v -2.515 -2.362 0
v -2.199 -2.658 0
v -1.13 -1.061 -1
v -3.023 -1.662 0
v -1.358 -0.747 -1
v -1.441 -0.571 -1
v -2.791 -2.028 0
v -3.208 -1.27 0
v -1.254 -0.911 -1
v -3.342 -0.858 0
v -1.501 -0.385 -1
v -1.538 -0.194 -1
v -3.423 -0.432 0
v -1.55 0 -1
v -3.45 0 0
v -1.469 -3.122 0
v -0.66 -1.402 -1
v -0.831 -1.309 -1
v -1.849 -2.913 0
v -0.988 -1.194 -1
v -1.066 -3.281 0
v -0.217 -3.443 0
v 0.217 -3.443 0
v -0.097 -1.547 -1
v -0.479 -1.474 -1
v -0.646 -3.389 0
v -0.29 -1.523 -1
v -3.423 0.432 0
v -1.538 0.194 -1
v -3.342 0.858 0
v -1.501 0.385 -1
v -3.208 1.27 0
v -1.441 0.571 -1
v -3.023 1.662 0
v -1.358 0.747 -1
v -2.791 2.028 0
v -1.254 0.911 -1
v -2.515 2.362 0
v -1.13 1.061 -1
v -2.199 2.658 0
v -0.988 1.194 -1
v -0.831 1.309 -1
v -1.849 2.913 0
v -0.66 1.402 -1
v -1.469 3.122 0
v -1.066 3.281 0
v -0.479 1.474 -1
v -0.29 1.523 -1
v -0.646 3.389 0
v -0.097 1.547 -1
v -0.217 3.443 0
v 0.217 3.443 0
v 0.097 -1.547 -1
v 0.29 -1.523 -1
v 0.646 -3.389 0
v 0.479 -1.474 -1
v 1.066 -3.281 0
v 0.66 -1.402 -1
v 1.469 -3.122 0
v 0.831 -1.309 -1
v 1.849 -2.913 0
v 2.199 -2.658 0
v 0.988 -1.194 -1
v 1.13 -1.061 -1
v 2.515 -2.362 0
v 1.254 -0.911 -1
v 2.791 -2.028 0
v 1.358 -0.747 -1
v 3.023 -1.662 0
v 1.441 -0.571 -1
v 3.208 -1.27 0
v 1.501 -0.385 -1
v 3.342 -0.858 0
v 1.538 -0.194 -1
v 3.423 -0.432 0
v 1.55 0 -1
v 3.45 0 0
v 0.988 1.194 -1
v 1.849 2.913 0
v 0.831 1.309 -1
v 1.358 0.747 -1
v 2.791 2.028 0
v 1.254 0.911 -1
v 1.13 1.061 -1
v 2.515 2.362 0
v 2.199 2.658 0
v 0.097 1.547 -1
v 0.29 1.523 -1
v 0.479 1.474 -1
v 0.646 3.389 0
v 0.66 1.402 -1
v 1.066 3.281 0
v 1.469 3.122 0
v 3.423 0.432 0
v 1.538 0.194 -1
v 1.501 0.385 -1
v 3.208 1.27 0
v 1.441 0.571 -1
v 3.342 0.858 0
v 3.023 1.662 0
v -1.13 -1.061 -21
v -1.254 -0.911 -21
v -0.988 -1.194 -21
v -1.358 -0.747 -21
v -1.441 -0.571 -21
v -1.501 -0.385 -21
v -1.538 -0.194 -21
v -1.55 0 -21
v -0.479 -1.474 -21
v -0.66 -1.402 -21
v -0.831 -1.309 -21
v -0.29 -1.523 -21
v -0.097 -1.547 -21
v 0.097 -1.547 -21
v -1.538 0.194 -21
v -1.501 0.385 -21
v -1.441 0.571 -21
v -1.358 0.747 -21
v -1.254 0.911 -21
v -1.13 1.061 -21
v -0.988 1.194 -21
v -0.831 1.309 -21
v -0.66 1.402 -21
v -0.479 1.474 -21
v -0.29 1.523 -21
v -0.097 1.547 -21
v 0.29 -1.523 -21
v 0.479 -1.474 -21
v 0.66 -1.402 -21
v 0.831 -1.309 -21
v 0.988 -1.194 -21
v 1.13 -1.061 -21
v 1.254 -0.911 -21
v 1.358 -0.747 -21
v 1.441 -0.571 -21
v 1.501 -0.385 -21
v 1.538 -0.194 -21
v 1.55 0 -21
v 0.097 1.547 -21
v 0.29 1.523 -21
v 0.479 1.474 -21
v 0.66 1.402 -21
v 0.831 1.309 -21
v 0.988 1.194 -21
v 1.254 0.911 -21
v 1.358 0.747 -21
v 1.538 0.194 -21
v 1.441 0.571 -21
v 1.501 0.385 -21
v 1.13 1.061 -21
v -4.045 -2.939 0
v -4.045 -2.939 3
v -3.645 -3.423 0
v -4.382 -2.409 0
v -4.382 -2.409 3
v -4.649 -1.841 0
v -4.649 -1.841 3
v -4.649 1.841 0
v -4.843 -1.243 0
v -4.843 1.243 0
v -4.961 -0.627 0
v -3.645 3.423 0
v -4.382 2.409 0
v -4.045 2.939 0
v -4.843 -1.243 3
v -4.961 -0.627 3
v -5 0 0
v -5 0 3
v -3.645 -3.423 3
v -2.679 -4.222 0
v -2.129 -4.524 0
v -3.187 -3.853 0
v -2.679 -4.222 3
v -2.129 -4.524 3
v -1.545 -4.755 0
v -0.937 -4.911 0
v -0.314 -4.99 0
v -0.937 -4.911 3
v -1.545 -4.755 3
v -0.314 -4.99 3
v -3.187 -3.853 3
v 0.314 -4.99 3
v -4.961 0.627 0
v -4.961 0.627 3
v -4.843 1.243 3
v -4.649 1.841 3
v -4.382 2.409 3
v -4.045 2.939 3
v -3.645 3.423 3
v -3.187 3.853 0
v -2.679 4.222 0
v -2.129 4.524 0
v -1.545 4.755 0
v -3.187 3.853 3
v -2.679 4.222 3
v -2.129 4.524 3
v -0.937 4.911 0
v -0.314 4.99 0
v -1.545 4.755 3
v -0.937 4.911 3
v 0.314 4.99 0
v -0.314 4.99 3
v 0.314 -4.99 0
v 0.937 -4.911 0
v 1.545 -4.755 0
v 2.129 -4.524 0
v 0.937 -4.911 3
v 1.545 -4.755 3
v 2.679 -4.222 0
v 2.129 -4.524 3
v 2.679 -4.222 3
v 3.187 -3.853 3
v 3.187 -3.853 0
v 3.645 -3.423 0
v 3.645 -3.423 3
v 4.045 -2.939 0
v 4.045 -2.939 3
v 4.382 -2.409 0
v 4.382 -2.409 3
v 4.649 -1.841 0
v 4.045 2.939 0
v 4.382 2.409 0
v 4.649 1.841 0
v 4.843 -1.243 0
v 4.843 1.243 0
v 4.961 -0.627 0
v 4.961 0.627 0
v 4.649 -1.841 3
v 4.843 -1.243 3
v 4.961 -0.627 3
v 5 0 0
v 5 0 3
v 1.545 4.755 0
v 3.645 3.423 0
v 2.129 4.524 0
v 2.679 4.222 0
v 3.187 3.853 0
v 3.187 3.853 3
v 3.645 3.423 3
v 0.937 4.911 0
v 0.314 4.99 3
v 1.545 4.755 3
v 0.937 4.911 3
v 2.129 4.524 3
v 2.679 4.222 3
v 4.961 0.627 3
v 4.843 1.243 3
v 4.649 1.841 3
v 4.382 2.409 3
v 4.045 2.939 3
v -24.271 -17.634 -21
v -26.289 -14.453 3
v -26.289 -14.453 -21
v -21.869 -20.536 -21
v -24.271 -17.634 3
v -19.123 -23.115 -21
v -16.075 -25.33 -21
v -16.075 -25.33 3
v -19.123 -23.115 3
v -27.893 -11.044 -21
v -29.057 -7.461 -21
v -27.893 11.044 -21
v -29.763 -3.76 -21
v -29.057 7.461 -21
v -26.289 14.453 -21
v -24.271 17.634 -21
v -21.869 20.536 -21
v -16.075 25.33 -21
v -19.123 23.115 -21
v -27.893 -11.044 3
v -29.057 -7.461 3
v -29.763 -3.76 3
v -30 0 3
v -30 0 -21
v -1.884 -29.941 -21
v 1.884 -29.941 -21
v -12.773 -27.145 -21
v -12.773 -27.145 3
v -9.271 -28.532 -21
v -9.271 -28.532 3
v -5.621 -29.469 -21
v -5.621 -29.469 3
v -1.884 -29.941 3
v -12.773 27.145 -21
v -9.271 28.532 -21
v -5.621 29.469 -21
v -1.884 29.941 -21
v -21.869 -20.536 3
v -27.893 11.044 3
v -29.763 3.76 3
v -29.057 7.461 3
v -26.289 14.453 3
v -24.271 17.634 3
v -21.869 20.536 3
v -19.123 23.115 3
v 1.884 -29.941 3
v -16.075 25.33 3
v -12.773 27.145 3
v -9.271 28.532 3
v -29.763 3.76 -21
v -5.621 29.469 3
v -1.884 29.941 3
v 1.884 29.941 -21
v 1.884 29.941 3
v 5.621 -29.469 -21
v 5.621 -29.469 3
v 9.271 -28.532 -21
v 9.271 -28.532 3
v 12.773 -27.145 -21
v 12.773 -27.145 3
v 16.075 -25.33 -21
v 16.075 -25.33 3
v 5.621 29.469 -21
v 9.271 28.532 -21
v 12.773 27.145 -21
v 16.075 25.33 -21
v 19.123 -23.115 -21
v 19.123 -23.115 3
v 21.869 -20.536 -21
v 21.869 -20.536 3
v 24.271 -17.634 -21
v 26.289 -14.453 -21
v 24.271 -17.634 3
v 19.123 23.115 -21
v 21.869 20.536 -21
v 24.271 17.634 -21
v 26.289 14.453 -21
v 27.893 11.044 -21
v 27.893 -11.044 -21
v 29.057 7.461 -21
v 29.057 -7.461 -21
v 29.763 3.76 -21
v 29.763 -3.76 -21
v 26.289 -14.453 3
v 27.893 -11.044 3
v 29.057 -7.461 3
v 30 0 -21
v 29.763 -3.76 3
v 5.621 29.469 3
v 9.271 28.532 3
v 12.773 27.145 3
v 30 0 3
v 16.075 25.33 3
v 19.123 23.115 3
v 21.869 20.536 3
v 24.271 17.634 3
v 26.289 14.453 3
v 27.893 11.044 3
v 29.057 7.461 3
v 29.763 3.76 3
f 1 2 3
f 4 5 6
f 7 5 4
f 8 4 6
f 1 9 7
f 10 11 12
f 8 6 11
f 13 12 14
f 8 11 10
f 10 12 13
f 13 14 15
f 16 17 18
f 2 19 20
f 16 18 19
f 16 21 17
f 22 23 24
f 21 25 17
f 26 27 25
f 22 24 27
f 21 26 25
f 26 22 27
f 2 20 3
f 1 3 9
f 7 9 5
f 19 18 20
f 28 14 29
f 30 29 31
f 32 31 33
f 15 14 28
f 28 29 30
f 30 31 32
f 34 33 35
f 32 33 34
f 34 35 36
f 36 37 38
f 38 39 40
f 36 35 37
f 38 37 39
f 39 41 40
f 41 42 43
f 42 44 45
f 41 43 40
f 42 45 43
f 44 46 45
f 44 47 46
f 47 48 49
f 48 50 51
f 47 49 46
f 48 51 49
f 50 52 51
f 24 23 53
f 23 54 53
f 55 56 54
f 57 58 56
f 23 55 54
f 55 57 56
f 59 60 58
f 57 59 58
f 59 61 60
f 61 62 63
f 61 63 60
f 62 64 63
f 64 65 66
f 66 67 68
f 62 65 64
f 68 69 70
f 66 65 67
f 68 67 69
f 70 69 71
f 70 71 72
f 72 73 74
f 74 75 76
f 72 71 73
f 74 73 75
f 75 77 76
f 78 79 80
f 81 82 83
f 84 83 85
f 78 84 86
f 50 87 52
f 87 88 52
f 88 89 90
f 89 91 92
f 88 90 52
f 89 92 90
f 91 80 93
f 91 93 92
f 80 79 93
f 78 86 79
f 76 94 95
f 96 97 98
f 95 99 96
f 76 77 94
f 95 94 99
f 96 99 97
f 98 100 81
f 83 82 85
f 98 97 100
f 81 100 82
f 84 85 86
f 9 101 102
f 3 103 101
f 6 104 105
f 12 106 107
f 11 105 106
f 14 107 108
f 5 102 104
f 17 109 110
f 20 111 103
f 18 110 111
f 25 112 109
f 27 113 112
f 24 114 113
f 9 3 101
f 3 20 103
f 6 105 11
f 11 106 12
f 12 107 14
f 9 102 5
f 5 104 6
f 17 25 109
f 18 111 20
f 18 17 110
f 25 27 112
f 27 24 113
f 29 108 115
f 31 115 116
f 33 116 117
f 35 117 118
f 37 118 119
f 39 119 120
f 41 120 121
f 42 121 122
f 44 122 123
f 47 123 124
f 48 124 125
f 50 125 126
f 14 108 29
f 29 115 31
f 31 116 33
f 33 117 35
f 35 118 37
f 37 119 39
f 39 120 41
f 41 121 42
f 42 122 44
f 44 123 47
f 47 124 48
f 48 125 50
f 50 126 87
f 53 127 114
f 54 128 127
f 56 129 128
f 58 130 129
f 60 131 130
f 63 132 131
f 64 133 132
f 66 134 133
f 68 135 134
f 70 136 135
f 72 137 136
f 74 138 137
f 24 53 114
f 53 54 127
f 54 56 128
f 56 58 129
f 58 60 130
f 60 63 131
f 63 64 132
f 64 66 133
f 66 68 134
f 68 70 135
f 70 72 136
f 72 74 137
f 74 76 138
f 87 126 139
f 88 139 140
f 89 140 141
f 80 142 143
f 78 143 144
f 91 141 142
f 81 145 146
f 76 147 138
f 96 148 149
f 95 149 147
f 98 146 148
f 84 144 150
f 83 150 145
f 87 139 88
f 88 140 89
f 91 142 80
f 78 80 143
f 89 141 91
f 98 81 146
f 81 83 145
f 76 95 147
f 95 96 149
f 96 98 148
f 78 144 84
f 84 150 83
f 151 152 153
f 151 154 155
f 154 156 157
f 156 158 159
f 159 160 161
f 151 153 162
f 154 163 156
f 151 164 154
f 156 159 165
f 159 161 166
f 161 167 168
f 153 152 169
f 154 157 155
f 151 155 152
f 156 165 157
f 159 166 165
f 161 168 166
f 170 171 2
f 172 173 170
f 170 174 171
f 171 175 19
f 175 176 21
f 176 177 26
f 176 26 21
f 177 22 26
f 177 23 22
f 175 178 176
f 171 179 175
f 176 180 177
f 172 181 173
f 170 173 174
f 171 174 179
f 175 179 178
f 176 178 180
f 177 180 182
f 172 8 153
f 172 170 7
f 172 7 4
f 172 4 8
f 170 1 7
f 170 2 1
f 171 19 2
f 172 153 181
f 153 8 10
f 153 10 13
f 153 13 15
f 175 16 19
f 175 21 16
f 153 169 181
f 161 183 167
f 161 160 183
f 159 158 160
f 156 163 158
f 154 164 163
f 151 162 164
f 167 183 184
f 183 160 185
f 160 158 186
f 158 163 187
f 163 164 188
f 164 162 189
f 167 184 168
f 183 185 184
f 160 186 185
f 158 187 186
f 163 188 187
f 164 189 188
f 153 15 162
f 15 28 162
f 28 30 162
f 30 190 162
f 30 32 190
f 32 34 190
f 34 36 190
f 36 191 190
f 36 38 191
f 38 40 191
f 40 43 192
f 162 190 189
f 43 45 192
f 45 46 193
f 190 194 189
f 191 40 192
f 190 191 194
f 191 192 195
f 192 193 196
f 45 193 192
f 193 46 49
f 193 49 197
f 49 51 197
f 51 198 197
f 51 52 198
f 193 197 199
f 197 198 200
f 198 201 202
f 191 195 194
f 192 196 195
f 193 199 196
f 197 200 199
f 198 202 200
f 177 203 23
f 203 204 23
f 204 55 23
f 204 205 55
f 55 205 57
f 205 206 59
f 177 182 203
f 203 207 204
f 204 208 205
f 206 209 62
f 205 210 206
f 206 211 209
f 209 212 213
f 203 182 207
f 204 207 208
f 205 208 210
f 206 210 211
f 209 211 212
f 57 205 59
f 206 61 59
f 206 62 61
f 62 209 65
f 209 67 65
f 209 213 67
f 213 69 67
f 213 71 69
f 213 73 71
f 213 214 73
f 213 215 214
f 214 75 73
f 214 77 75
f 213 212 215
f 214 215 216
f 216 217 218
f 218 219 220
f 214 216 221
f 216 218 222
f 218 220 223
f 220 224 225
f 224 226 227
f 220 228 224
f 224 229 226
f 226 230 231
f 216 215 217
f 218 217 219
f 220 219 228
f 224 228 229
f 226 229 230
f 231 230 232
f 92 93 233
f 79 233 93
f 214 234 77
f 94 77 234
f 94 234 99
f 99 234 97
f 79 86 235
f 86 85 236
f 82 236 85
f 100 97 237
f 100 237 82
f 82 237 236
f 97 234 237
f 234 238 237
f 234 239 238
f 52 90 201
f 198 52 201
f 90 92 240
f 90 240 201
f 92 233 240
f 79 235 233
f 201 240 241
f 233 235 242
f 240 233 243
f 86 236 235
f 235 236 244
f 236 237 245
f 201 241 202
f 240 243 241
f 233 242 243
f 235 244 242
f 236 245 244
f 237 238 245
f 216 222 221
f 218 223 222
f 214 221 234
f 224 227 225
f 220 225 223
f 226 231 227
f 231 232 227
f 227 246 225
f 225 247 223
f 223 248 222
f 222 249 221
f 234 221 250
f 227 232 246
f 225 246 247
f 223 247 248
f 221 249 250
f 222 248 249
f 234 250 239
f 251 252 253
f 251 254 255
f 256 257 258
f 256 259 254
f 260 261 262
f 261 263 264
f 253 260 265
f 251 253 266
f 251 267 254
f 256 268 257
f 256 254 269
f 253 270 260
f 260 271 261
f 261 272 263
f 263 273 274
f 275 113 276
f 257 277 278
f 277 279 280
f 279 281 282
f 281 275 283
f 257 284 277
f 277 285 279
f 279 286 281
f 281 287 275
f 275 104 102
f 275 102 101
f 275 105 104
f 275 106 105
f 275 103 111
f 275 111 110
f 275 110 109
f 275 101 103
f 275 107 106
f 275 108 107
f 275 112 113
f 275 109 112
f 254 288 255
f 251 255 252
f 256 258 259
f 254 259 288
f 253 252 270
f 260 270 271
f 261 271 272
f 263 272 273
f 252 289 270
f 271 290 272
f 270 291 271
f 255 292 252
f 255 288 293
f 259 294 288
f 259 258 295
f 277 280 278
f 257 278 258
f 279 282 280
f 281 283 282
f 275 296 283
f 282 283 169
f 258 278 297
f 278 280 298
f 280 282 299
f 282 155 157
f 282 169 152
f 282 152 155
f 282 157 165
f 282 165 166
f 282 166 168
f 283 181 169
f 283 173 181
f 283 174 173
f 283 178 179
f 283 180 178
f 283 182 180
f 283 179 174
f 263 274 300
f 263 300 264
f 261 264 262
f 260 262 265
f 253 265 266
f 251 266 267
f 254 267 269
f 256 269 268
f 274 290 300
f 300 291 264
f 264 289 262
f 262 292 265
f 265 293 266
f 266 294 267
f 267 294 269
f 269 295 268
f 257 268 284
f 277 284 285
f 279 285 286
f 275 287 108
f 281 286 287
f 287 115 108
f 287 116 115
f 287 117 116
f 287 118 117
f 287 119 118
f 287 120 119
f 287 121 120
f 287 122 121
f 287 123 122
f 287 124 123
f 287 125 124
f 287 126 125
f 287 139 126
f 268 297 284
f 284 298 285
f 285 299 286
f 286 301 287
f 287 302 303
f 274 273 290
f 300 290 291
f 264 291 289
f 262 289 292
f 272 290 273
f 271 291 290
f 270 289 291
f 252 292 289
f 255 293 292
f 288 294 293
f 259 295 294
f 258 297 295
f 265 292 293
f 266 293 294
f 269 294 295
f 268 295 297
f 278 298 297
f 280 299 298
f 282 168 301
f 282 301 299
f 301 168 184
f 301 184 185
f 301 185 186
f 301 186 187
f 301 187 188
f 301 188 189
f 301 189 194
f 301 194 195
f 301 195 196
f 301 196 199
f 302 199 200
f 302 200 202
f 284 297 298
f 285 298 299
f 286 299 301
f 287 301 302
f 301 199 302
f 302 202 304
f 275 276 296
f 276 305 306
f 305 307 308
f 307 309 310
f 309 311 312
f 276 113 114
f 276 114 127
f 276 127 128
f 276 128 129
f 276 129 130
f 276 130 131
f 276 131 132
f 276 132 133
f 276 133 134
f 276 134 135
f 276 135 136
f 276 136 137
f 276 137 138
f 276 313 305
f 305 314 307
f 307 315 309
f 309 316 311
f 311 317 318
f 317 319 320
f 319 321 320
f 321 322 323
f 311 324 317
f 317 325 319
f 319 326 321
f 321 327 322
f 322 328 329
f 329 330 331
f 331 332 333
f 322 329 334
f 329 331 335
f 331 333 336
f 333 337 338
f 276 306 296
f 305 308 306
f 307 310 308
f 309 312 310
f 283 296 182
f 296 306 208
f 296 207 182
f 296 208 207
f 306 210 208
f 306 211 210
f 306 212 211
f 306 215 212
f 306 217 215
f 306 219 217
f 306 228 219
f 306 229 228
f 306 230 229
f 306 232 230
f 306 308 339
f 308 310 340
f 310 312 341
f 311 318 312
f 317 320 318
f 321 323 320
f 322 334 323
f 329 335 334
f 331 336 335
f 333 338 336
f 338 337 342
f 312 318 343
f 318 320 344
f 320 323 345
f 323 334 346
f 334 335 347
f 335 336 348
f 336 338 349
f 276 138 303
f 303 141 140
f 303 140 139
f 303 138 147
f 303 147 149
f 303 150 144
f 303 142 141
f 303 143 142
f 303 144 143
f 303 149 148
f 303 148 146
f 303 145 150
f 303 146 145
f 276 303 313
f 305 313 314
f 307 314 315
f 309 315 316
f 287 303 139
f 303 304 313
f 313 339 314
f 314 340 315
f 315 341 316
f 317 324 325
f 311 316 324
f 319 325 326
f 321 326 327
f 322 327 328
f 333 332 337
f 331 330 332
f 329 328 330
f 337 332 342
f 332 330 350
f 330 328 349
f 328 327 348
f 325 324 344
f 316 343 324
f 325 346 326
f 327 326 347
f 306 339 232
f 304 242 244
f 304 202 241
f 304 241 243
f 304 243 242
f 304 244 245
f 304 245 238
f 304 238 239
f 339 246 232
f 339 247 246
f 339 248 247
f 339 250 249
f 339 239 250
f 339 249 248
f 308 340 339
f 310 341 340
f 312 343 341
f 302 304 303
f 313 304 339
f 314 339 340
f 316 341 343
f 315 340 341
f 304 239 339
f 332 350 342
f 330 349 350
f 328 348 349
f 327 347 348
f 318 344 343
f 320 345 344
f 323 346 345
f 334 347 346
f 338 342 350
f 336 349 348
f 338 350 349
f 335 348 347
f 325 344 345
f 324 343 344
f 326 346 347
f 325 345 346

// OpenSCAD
$fn = 50;

difference() {
	union() {
		translate(v = [0, 0, -21.0]) {
			cylinder(h = 24, r = 30.0);
		}
	}
	union() {
		translate(v = [0, 0, 0]) {
			rotate(a = [0, 0, 0]) {
				difference() {
					union() {
						translate(v = [0, 0, -24.0]) {
							cylinder(h = 24, r = 1.25);
						}
						translate(v = [0, 0, -1.0]) {
							cylinder(h = 1.0, r1 = 1.55, r2 = 3.45);
						}
						translate(v = [0, 0, -24.0]) {
							cylinder(h = 24, r = 1.55);
						}
						translate(v = [0, 0, -24.0]) {
							cylinder(h = 24, r = 1.25);
						}
					}
					union();
				}
			}
		}
		#cylinder(h = 3, r = 5.0);
	}
}
